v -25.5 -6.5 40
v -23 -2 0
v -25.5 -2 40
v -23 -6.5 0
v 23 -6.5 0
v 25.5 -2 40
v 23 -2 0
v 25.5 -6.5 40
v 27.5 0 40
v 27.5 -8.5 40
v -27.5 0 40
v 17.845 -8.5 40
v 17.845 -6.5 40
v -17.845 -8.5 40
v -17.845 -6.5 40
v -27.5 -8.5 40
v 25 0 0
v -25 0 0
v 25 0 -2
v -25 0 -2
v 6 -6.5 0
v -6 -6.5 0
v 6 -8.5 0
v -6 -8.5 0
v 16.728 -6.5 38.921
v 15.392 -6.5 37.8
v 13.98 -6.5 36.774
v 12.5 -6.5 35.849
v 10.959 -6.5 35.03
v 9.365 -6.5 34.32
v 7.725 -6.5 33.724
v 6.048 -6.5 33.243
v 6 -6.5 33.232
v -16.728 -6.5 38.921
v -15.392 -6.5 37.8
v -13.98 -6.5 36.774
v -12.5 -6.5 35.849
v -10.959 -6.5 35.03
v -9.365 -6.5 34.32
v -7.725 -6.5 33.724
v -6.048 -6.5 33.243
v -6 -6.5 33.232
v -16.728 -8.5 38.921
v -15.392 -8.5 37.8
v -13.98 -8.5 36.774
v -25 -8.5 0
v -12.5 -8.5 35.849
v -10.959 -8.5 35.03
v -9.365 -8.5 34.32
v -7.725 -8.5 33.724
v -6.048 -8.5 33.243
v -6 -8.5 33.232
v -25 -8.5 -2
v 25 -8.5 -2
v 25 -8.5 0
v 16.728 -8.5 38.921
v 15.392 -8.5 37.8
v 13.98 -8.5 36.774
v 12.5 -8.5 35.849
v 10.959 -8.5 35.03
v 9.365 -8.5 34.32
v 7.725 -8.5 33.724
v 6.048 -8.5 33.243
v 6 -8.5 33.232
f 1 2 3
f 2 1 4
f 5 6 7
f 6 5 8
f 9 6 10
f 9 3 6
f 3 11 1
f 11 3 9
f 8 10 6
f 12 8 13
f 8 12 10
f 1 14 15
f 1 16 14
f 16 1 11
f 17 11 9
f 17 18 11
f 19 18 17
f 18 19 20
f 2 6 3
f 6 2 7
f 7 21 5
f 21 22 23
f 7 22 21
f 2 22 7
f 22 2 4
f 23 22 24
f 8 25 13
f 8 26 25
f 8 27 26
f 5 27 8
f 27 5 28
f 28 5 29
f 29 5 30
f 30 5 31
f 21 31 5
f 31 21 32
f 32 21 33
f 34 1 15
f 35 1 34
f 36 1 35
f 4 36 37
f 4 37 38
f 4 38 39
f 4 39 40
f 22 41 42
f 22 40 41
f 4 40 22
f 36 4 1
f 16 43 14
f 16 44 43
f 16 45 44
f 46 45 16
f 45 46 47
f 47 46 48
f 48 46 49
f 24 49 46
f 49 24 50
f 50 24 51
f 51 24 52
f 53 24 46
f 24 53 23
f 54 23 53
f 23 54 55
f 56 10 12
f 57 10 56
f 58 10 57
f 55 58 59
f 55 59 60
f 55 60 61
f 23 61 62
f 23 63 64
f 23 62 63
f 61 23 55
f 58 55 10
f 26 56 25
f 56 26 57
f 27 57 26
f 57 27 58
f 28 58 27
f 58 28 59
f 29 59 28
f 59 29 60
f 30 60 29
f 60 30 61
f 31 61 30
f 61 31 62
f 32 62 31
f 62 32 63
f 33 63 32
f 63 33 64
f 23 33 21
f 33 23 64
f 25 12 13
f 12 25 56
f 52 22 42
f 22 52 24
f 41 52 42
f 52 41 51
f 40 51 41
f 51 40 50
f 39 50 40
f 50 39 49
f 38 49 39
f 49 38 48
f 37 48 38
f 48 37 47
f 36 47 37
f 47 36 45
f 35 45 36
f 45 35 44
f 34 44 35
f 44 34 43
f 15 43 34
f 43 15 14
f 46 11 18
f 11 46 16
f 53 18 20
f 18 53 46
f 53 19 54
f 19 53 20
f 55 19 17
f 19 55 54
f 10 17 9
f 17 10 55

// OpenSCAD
$fn=90;
$wall_thickness=2;
$pad_thickness=6.5;


//46 wide at top
//51 wide at bottom
//40 tall
rotate([-90,0,180]){
    // pad face
    linear_extrude($wall_thickness)
    polygon([
        [-23,0],[23,0],[25.5, -40],[-25.5, -40], [-23,0]
    ]);



    // pad rear w/cutouts
    translate([0,0,$pad_thickness])
    linear_extrude($wall_thickness)
    difference(){
        polygon([
            [-23,0],[23,0],[25.5, -40],[-25.5, -40], [-23,0]
        ]);
        square([12,70], true);
        translate([0,-57.5,0])
        circle(d=50);
    }

    //walls
    linear_extrude(8.5){
    polygon([
        [-25,0],[-23,0],[-25.5,-40],[-27.5,-40],[-25,0]
    ]);
    polygon([
        [25,0],[23,0],[25.5,-40],[27.5,-40],[25,0]
    ]);

    polygon([
        [-25,0],[-25,2],[25,2],[25,0],[-25,0]
    ]);
    }
}
